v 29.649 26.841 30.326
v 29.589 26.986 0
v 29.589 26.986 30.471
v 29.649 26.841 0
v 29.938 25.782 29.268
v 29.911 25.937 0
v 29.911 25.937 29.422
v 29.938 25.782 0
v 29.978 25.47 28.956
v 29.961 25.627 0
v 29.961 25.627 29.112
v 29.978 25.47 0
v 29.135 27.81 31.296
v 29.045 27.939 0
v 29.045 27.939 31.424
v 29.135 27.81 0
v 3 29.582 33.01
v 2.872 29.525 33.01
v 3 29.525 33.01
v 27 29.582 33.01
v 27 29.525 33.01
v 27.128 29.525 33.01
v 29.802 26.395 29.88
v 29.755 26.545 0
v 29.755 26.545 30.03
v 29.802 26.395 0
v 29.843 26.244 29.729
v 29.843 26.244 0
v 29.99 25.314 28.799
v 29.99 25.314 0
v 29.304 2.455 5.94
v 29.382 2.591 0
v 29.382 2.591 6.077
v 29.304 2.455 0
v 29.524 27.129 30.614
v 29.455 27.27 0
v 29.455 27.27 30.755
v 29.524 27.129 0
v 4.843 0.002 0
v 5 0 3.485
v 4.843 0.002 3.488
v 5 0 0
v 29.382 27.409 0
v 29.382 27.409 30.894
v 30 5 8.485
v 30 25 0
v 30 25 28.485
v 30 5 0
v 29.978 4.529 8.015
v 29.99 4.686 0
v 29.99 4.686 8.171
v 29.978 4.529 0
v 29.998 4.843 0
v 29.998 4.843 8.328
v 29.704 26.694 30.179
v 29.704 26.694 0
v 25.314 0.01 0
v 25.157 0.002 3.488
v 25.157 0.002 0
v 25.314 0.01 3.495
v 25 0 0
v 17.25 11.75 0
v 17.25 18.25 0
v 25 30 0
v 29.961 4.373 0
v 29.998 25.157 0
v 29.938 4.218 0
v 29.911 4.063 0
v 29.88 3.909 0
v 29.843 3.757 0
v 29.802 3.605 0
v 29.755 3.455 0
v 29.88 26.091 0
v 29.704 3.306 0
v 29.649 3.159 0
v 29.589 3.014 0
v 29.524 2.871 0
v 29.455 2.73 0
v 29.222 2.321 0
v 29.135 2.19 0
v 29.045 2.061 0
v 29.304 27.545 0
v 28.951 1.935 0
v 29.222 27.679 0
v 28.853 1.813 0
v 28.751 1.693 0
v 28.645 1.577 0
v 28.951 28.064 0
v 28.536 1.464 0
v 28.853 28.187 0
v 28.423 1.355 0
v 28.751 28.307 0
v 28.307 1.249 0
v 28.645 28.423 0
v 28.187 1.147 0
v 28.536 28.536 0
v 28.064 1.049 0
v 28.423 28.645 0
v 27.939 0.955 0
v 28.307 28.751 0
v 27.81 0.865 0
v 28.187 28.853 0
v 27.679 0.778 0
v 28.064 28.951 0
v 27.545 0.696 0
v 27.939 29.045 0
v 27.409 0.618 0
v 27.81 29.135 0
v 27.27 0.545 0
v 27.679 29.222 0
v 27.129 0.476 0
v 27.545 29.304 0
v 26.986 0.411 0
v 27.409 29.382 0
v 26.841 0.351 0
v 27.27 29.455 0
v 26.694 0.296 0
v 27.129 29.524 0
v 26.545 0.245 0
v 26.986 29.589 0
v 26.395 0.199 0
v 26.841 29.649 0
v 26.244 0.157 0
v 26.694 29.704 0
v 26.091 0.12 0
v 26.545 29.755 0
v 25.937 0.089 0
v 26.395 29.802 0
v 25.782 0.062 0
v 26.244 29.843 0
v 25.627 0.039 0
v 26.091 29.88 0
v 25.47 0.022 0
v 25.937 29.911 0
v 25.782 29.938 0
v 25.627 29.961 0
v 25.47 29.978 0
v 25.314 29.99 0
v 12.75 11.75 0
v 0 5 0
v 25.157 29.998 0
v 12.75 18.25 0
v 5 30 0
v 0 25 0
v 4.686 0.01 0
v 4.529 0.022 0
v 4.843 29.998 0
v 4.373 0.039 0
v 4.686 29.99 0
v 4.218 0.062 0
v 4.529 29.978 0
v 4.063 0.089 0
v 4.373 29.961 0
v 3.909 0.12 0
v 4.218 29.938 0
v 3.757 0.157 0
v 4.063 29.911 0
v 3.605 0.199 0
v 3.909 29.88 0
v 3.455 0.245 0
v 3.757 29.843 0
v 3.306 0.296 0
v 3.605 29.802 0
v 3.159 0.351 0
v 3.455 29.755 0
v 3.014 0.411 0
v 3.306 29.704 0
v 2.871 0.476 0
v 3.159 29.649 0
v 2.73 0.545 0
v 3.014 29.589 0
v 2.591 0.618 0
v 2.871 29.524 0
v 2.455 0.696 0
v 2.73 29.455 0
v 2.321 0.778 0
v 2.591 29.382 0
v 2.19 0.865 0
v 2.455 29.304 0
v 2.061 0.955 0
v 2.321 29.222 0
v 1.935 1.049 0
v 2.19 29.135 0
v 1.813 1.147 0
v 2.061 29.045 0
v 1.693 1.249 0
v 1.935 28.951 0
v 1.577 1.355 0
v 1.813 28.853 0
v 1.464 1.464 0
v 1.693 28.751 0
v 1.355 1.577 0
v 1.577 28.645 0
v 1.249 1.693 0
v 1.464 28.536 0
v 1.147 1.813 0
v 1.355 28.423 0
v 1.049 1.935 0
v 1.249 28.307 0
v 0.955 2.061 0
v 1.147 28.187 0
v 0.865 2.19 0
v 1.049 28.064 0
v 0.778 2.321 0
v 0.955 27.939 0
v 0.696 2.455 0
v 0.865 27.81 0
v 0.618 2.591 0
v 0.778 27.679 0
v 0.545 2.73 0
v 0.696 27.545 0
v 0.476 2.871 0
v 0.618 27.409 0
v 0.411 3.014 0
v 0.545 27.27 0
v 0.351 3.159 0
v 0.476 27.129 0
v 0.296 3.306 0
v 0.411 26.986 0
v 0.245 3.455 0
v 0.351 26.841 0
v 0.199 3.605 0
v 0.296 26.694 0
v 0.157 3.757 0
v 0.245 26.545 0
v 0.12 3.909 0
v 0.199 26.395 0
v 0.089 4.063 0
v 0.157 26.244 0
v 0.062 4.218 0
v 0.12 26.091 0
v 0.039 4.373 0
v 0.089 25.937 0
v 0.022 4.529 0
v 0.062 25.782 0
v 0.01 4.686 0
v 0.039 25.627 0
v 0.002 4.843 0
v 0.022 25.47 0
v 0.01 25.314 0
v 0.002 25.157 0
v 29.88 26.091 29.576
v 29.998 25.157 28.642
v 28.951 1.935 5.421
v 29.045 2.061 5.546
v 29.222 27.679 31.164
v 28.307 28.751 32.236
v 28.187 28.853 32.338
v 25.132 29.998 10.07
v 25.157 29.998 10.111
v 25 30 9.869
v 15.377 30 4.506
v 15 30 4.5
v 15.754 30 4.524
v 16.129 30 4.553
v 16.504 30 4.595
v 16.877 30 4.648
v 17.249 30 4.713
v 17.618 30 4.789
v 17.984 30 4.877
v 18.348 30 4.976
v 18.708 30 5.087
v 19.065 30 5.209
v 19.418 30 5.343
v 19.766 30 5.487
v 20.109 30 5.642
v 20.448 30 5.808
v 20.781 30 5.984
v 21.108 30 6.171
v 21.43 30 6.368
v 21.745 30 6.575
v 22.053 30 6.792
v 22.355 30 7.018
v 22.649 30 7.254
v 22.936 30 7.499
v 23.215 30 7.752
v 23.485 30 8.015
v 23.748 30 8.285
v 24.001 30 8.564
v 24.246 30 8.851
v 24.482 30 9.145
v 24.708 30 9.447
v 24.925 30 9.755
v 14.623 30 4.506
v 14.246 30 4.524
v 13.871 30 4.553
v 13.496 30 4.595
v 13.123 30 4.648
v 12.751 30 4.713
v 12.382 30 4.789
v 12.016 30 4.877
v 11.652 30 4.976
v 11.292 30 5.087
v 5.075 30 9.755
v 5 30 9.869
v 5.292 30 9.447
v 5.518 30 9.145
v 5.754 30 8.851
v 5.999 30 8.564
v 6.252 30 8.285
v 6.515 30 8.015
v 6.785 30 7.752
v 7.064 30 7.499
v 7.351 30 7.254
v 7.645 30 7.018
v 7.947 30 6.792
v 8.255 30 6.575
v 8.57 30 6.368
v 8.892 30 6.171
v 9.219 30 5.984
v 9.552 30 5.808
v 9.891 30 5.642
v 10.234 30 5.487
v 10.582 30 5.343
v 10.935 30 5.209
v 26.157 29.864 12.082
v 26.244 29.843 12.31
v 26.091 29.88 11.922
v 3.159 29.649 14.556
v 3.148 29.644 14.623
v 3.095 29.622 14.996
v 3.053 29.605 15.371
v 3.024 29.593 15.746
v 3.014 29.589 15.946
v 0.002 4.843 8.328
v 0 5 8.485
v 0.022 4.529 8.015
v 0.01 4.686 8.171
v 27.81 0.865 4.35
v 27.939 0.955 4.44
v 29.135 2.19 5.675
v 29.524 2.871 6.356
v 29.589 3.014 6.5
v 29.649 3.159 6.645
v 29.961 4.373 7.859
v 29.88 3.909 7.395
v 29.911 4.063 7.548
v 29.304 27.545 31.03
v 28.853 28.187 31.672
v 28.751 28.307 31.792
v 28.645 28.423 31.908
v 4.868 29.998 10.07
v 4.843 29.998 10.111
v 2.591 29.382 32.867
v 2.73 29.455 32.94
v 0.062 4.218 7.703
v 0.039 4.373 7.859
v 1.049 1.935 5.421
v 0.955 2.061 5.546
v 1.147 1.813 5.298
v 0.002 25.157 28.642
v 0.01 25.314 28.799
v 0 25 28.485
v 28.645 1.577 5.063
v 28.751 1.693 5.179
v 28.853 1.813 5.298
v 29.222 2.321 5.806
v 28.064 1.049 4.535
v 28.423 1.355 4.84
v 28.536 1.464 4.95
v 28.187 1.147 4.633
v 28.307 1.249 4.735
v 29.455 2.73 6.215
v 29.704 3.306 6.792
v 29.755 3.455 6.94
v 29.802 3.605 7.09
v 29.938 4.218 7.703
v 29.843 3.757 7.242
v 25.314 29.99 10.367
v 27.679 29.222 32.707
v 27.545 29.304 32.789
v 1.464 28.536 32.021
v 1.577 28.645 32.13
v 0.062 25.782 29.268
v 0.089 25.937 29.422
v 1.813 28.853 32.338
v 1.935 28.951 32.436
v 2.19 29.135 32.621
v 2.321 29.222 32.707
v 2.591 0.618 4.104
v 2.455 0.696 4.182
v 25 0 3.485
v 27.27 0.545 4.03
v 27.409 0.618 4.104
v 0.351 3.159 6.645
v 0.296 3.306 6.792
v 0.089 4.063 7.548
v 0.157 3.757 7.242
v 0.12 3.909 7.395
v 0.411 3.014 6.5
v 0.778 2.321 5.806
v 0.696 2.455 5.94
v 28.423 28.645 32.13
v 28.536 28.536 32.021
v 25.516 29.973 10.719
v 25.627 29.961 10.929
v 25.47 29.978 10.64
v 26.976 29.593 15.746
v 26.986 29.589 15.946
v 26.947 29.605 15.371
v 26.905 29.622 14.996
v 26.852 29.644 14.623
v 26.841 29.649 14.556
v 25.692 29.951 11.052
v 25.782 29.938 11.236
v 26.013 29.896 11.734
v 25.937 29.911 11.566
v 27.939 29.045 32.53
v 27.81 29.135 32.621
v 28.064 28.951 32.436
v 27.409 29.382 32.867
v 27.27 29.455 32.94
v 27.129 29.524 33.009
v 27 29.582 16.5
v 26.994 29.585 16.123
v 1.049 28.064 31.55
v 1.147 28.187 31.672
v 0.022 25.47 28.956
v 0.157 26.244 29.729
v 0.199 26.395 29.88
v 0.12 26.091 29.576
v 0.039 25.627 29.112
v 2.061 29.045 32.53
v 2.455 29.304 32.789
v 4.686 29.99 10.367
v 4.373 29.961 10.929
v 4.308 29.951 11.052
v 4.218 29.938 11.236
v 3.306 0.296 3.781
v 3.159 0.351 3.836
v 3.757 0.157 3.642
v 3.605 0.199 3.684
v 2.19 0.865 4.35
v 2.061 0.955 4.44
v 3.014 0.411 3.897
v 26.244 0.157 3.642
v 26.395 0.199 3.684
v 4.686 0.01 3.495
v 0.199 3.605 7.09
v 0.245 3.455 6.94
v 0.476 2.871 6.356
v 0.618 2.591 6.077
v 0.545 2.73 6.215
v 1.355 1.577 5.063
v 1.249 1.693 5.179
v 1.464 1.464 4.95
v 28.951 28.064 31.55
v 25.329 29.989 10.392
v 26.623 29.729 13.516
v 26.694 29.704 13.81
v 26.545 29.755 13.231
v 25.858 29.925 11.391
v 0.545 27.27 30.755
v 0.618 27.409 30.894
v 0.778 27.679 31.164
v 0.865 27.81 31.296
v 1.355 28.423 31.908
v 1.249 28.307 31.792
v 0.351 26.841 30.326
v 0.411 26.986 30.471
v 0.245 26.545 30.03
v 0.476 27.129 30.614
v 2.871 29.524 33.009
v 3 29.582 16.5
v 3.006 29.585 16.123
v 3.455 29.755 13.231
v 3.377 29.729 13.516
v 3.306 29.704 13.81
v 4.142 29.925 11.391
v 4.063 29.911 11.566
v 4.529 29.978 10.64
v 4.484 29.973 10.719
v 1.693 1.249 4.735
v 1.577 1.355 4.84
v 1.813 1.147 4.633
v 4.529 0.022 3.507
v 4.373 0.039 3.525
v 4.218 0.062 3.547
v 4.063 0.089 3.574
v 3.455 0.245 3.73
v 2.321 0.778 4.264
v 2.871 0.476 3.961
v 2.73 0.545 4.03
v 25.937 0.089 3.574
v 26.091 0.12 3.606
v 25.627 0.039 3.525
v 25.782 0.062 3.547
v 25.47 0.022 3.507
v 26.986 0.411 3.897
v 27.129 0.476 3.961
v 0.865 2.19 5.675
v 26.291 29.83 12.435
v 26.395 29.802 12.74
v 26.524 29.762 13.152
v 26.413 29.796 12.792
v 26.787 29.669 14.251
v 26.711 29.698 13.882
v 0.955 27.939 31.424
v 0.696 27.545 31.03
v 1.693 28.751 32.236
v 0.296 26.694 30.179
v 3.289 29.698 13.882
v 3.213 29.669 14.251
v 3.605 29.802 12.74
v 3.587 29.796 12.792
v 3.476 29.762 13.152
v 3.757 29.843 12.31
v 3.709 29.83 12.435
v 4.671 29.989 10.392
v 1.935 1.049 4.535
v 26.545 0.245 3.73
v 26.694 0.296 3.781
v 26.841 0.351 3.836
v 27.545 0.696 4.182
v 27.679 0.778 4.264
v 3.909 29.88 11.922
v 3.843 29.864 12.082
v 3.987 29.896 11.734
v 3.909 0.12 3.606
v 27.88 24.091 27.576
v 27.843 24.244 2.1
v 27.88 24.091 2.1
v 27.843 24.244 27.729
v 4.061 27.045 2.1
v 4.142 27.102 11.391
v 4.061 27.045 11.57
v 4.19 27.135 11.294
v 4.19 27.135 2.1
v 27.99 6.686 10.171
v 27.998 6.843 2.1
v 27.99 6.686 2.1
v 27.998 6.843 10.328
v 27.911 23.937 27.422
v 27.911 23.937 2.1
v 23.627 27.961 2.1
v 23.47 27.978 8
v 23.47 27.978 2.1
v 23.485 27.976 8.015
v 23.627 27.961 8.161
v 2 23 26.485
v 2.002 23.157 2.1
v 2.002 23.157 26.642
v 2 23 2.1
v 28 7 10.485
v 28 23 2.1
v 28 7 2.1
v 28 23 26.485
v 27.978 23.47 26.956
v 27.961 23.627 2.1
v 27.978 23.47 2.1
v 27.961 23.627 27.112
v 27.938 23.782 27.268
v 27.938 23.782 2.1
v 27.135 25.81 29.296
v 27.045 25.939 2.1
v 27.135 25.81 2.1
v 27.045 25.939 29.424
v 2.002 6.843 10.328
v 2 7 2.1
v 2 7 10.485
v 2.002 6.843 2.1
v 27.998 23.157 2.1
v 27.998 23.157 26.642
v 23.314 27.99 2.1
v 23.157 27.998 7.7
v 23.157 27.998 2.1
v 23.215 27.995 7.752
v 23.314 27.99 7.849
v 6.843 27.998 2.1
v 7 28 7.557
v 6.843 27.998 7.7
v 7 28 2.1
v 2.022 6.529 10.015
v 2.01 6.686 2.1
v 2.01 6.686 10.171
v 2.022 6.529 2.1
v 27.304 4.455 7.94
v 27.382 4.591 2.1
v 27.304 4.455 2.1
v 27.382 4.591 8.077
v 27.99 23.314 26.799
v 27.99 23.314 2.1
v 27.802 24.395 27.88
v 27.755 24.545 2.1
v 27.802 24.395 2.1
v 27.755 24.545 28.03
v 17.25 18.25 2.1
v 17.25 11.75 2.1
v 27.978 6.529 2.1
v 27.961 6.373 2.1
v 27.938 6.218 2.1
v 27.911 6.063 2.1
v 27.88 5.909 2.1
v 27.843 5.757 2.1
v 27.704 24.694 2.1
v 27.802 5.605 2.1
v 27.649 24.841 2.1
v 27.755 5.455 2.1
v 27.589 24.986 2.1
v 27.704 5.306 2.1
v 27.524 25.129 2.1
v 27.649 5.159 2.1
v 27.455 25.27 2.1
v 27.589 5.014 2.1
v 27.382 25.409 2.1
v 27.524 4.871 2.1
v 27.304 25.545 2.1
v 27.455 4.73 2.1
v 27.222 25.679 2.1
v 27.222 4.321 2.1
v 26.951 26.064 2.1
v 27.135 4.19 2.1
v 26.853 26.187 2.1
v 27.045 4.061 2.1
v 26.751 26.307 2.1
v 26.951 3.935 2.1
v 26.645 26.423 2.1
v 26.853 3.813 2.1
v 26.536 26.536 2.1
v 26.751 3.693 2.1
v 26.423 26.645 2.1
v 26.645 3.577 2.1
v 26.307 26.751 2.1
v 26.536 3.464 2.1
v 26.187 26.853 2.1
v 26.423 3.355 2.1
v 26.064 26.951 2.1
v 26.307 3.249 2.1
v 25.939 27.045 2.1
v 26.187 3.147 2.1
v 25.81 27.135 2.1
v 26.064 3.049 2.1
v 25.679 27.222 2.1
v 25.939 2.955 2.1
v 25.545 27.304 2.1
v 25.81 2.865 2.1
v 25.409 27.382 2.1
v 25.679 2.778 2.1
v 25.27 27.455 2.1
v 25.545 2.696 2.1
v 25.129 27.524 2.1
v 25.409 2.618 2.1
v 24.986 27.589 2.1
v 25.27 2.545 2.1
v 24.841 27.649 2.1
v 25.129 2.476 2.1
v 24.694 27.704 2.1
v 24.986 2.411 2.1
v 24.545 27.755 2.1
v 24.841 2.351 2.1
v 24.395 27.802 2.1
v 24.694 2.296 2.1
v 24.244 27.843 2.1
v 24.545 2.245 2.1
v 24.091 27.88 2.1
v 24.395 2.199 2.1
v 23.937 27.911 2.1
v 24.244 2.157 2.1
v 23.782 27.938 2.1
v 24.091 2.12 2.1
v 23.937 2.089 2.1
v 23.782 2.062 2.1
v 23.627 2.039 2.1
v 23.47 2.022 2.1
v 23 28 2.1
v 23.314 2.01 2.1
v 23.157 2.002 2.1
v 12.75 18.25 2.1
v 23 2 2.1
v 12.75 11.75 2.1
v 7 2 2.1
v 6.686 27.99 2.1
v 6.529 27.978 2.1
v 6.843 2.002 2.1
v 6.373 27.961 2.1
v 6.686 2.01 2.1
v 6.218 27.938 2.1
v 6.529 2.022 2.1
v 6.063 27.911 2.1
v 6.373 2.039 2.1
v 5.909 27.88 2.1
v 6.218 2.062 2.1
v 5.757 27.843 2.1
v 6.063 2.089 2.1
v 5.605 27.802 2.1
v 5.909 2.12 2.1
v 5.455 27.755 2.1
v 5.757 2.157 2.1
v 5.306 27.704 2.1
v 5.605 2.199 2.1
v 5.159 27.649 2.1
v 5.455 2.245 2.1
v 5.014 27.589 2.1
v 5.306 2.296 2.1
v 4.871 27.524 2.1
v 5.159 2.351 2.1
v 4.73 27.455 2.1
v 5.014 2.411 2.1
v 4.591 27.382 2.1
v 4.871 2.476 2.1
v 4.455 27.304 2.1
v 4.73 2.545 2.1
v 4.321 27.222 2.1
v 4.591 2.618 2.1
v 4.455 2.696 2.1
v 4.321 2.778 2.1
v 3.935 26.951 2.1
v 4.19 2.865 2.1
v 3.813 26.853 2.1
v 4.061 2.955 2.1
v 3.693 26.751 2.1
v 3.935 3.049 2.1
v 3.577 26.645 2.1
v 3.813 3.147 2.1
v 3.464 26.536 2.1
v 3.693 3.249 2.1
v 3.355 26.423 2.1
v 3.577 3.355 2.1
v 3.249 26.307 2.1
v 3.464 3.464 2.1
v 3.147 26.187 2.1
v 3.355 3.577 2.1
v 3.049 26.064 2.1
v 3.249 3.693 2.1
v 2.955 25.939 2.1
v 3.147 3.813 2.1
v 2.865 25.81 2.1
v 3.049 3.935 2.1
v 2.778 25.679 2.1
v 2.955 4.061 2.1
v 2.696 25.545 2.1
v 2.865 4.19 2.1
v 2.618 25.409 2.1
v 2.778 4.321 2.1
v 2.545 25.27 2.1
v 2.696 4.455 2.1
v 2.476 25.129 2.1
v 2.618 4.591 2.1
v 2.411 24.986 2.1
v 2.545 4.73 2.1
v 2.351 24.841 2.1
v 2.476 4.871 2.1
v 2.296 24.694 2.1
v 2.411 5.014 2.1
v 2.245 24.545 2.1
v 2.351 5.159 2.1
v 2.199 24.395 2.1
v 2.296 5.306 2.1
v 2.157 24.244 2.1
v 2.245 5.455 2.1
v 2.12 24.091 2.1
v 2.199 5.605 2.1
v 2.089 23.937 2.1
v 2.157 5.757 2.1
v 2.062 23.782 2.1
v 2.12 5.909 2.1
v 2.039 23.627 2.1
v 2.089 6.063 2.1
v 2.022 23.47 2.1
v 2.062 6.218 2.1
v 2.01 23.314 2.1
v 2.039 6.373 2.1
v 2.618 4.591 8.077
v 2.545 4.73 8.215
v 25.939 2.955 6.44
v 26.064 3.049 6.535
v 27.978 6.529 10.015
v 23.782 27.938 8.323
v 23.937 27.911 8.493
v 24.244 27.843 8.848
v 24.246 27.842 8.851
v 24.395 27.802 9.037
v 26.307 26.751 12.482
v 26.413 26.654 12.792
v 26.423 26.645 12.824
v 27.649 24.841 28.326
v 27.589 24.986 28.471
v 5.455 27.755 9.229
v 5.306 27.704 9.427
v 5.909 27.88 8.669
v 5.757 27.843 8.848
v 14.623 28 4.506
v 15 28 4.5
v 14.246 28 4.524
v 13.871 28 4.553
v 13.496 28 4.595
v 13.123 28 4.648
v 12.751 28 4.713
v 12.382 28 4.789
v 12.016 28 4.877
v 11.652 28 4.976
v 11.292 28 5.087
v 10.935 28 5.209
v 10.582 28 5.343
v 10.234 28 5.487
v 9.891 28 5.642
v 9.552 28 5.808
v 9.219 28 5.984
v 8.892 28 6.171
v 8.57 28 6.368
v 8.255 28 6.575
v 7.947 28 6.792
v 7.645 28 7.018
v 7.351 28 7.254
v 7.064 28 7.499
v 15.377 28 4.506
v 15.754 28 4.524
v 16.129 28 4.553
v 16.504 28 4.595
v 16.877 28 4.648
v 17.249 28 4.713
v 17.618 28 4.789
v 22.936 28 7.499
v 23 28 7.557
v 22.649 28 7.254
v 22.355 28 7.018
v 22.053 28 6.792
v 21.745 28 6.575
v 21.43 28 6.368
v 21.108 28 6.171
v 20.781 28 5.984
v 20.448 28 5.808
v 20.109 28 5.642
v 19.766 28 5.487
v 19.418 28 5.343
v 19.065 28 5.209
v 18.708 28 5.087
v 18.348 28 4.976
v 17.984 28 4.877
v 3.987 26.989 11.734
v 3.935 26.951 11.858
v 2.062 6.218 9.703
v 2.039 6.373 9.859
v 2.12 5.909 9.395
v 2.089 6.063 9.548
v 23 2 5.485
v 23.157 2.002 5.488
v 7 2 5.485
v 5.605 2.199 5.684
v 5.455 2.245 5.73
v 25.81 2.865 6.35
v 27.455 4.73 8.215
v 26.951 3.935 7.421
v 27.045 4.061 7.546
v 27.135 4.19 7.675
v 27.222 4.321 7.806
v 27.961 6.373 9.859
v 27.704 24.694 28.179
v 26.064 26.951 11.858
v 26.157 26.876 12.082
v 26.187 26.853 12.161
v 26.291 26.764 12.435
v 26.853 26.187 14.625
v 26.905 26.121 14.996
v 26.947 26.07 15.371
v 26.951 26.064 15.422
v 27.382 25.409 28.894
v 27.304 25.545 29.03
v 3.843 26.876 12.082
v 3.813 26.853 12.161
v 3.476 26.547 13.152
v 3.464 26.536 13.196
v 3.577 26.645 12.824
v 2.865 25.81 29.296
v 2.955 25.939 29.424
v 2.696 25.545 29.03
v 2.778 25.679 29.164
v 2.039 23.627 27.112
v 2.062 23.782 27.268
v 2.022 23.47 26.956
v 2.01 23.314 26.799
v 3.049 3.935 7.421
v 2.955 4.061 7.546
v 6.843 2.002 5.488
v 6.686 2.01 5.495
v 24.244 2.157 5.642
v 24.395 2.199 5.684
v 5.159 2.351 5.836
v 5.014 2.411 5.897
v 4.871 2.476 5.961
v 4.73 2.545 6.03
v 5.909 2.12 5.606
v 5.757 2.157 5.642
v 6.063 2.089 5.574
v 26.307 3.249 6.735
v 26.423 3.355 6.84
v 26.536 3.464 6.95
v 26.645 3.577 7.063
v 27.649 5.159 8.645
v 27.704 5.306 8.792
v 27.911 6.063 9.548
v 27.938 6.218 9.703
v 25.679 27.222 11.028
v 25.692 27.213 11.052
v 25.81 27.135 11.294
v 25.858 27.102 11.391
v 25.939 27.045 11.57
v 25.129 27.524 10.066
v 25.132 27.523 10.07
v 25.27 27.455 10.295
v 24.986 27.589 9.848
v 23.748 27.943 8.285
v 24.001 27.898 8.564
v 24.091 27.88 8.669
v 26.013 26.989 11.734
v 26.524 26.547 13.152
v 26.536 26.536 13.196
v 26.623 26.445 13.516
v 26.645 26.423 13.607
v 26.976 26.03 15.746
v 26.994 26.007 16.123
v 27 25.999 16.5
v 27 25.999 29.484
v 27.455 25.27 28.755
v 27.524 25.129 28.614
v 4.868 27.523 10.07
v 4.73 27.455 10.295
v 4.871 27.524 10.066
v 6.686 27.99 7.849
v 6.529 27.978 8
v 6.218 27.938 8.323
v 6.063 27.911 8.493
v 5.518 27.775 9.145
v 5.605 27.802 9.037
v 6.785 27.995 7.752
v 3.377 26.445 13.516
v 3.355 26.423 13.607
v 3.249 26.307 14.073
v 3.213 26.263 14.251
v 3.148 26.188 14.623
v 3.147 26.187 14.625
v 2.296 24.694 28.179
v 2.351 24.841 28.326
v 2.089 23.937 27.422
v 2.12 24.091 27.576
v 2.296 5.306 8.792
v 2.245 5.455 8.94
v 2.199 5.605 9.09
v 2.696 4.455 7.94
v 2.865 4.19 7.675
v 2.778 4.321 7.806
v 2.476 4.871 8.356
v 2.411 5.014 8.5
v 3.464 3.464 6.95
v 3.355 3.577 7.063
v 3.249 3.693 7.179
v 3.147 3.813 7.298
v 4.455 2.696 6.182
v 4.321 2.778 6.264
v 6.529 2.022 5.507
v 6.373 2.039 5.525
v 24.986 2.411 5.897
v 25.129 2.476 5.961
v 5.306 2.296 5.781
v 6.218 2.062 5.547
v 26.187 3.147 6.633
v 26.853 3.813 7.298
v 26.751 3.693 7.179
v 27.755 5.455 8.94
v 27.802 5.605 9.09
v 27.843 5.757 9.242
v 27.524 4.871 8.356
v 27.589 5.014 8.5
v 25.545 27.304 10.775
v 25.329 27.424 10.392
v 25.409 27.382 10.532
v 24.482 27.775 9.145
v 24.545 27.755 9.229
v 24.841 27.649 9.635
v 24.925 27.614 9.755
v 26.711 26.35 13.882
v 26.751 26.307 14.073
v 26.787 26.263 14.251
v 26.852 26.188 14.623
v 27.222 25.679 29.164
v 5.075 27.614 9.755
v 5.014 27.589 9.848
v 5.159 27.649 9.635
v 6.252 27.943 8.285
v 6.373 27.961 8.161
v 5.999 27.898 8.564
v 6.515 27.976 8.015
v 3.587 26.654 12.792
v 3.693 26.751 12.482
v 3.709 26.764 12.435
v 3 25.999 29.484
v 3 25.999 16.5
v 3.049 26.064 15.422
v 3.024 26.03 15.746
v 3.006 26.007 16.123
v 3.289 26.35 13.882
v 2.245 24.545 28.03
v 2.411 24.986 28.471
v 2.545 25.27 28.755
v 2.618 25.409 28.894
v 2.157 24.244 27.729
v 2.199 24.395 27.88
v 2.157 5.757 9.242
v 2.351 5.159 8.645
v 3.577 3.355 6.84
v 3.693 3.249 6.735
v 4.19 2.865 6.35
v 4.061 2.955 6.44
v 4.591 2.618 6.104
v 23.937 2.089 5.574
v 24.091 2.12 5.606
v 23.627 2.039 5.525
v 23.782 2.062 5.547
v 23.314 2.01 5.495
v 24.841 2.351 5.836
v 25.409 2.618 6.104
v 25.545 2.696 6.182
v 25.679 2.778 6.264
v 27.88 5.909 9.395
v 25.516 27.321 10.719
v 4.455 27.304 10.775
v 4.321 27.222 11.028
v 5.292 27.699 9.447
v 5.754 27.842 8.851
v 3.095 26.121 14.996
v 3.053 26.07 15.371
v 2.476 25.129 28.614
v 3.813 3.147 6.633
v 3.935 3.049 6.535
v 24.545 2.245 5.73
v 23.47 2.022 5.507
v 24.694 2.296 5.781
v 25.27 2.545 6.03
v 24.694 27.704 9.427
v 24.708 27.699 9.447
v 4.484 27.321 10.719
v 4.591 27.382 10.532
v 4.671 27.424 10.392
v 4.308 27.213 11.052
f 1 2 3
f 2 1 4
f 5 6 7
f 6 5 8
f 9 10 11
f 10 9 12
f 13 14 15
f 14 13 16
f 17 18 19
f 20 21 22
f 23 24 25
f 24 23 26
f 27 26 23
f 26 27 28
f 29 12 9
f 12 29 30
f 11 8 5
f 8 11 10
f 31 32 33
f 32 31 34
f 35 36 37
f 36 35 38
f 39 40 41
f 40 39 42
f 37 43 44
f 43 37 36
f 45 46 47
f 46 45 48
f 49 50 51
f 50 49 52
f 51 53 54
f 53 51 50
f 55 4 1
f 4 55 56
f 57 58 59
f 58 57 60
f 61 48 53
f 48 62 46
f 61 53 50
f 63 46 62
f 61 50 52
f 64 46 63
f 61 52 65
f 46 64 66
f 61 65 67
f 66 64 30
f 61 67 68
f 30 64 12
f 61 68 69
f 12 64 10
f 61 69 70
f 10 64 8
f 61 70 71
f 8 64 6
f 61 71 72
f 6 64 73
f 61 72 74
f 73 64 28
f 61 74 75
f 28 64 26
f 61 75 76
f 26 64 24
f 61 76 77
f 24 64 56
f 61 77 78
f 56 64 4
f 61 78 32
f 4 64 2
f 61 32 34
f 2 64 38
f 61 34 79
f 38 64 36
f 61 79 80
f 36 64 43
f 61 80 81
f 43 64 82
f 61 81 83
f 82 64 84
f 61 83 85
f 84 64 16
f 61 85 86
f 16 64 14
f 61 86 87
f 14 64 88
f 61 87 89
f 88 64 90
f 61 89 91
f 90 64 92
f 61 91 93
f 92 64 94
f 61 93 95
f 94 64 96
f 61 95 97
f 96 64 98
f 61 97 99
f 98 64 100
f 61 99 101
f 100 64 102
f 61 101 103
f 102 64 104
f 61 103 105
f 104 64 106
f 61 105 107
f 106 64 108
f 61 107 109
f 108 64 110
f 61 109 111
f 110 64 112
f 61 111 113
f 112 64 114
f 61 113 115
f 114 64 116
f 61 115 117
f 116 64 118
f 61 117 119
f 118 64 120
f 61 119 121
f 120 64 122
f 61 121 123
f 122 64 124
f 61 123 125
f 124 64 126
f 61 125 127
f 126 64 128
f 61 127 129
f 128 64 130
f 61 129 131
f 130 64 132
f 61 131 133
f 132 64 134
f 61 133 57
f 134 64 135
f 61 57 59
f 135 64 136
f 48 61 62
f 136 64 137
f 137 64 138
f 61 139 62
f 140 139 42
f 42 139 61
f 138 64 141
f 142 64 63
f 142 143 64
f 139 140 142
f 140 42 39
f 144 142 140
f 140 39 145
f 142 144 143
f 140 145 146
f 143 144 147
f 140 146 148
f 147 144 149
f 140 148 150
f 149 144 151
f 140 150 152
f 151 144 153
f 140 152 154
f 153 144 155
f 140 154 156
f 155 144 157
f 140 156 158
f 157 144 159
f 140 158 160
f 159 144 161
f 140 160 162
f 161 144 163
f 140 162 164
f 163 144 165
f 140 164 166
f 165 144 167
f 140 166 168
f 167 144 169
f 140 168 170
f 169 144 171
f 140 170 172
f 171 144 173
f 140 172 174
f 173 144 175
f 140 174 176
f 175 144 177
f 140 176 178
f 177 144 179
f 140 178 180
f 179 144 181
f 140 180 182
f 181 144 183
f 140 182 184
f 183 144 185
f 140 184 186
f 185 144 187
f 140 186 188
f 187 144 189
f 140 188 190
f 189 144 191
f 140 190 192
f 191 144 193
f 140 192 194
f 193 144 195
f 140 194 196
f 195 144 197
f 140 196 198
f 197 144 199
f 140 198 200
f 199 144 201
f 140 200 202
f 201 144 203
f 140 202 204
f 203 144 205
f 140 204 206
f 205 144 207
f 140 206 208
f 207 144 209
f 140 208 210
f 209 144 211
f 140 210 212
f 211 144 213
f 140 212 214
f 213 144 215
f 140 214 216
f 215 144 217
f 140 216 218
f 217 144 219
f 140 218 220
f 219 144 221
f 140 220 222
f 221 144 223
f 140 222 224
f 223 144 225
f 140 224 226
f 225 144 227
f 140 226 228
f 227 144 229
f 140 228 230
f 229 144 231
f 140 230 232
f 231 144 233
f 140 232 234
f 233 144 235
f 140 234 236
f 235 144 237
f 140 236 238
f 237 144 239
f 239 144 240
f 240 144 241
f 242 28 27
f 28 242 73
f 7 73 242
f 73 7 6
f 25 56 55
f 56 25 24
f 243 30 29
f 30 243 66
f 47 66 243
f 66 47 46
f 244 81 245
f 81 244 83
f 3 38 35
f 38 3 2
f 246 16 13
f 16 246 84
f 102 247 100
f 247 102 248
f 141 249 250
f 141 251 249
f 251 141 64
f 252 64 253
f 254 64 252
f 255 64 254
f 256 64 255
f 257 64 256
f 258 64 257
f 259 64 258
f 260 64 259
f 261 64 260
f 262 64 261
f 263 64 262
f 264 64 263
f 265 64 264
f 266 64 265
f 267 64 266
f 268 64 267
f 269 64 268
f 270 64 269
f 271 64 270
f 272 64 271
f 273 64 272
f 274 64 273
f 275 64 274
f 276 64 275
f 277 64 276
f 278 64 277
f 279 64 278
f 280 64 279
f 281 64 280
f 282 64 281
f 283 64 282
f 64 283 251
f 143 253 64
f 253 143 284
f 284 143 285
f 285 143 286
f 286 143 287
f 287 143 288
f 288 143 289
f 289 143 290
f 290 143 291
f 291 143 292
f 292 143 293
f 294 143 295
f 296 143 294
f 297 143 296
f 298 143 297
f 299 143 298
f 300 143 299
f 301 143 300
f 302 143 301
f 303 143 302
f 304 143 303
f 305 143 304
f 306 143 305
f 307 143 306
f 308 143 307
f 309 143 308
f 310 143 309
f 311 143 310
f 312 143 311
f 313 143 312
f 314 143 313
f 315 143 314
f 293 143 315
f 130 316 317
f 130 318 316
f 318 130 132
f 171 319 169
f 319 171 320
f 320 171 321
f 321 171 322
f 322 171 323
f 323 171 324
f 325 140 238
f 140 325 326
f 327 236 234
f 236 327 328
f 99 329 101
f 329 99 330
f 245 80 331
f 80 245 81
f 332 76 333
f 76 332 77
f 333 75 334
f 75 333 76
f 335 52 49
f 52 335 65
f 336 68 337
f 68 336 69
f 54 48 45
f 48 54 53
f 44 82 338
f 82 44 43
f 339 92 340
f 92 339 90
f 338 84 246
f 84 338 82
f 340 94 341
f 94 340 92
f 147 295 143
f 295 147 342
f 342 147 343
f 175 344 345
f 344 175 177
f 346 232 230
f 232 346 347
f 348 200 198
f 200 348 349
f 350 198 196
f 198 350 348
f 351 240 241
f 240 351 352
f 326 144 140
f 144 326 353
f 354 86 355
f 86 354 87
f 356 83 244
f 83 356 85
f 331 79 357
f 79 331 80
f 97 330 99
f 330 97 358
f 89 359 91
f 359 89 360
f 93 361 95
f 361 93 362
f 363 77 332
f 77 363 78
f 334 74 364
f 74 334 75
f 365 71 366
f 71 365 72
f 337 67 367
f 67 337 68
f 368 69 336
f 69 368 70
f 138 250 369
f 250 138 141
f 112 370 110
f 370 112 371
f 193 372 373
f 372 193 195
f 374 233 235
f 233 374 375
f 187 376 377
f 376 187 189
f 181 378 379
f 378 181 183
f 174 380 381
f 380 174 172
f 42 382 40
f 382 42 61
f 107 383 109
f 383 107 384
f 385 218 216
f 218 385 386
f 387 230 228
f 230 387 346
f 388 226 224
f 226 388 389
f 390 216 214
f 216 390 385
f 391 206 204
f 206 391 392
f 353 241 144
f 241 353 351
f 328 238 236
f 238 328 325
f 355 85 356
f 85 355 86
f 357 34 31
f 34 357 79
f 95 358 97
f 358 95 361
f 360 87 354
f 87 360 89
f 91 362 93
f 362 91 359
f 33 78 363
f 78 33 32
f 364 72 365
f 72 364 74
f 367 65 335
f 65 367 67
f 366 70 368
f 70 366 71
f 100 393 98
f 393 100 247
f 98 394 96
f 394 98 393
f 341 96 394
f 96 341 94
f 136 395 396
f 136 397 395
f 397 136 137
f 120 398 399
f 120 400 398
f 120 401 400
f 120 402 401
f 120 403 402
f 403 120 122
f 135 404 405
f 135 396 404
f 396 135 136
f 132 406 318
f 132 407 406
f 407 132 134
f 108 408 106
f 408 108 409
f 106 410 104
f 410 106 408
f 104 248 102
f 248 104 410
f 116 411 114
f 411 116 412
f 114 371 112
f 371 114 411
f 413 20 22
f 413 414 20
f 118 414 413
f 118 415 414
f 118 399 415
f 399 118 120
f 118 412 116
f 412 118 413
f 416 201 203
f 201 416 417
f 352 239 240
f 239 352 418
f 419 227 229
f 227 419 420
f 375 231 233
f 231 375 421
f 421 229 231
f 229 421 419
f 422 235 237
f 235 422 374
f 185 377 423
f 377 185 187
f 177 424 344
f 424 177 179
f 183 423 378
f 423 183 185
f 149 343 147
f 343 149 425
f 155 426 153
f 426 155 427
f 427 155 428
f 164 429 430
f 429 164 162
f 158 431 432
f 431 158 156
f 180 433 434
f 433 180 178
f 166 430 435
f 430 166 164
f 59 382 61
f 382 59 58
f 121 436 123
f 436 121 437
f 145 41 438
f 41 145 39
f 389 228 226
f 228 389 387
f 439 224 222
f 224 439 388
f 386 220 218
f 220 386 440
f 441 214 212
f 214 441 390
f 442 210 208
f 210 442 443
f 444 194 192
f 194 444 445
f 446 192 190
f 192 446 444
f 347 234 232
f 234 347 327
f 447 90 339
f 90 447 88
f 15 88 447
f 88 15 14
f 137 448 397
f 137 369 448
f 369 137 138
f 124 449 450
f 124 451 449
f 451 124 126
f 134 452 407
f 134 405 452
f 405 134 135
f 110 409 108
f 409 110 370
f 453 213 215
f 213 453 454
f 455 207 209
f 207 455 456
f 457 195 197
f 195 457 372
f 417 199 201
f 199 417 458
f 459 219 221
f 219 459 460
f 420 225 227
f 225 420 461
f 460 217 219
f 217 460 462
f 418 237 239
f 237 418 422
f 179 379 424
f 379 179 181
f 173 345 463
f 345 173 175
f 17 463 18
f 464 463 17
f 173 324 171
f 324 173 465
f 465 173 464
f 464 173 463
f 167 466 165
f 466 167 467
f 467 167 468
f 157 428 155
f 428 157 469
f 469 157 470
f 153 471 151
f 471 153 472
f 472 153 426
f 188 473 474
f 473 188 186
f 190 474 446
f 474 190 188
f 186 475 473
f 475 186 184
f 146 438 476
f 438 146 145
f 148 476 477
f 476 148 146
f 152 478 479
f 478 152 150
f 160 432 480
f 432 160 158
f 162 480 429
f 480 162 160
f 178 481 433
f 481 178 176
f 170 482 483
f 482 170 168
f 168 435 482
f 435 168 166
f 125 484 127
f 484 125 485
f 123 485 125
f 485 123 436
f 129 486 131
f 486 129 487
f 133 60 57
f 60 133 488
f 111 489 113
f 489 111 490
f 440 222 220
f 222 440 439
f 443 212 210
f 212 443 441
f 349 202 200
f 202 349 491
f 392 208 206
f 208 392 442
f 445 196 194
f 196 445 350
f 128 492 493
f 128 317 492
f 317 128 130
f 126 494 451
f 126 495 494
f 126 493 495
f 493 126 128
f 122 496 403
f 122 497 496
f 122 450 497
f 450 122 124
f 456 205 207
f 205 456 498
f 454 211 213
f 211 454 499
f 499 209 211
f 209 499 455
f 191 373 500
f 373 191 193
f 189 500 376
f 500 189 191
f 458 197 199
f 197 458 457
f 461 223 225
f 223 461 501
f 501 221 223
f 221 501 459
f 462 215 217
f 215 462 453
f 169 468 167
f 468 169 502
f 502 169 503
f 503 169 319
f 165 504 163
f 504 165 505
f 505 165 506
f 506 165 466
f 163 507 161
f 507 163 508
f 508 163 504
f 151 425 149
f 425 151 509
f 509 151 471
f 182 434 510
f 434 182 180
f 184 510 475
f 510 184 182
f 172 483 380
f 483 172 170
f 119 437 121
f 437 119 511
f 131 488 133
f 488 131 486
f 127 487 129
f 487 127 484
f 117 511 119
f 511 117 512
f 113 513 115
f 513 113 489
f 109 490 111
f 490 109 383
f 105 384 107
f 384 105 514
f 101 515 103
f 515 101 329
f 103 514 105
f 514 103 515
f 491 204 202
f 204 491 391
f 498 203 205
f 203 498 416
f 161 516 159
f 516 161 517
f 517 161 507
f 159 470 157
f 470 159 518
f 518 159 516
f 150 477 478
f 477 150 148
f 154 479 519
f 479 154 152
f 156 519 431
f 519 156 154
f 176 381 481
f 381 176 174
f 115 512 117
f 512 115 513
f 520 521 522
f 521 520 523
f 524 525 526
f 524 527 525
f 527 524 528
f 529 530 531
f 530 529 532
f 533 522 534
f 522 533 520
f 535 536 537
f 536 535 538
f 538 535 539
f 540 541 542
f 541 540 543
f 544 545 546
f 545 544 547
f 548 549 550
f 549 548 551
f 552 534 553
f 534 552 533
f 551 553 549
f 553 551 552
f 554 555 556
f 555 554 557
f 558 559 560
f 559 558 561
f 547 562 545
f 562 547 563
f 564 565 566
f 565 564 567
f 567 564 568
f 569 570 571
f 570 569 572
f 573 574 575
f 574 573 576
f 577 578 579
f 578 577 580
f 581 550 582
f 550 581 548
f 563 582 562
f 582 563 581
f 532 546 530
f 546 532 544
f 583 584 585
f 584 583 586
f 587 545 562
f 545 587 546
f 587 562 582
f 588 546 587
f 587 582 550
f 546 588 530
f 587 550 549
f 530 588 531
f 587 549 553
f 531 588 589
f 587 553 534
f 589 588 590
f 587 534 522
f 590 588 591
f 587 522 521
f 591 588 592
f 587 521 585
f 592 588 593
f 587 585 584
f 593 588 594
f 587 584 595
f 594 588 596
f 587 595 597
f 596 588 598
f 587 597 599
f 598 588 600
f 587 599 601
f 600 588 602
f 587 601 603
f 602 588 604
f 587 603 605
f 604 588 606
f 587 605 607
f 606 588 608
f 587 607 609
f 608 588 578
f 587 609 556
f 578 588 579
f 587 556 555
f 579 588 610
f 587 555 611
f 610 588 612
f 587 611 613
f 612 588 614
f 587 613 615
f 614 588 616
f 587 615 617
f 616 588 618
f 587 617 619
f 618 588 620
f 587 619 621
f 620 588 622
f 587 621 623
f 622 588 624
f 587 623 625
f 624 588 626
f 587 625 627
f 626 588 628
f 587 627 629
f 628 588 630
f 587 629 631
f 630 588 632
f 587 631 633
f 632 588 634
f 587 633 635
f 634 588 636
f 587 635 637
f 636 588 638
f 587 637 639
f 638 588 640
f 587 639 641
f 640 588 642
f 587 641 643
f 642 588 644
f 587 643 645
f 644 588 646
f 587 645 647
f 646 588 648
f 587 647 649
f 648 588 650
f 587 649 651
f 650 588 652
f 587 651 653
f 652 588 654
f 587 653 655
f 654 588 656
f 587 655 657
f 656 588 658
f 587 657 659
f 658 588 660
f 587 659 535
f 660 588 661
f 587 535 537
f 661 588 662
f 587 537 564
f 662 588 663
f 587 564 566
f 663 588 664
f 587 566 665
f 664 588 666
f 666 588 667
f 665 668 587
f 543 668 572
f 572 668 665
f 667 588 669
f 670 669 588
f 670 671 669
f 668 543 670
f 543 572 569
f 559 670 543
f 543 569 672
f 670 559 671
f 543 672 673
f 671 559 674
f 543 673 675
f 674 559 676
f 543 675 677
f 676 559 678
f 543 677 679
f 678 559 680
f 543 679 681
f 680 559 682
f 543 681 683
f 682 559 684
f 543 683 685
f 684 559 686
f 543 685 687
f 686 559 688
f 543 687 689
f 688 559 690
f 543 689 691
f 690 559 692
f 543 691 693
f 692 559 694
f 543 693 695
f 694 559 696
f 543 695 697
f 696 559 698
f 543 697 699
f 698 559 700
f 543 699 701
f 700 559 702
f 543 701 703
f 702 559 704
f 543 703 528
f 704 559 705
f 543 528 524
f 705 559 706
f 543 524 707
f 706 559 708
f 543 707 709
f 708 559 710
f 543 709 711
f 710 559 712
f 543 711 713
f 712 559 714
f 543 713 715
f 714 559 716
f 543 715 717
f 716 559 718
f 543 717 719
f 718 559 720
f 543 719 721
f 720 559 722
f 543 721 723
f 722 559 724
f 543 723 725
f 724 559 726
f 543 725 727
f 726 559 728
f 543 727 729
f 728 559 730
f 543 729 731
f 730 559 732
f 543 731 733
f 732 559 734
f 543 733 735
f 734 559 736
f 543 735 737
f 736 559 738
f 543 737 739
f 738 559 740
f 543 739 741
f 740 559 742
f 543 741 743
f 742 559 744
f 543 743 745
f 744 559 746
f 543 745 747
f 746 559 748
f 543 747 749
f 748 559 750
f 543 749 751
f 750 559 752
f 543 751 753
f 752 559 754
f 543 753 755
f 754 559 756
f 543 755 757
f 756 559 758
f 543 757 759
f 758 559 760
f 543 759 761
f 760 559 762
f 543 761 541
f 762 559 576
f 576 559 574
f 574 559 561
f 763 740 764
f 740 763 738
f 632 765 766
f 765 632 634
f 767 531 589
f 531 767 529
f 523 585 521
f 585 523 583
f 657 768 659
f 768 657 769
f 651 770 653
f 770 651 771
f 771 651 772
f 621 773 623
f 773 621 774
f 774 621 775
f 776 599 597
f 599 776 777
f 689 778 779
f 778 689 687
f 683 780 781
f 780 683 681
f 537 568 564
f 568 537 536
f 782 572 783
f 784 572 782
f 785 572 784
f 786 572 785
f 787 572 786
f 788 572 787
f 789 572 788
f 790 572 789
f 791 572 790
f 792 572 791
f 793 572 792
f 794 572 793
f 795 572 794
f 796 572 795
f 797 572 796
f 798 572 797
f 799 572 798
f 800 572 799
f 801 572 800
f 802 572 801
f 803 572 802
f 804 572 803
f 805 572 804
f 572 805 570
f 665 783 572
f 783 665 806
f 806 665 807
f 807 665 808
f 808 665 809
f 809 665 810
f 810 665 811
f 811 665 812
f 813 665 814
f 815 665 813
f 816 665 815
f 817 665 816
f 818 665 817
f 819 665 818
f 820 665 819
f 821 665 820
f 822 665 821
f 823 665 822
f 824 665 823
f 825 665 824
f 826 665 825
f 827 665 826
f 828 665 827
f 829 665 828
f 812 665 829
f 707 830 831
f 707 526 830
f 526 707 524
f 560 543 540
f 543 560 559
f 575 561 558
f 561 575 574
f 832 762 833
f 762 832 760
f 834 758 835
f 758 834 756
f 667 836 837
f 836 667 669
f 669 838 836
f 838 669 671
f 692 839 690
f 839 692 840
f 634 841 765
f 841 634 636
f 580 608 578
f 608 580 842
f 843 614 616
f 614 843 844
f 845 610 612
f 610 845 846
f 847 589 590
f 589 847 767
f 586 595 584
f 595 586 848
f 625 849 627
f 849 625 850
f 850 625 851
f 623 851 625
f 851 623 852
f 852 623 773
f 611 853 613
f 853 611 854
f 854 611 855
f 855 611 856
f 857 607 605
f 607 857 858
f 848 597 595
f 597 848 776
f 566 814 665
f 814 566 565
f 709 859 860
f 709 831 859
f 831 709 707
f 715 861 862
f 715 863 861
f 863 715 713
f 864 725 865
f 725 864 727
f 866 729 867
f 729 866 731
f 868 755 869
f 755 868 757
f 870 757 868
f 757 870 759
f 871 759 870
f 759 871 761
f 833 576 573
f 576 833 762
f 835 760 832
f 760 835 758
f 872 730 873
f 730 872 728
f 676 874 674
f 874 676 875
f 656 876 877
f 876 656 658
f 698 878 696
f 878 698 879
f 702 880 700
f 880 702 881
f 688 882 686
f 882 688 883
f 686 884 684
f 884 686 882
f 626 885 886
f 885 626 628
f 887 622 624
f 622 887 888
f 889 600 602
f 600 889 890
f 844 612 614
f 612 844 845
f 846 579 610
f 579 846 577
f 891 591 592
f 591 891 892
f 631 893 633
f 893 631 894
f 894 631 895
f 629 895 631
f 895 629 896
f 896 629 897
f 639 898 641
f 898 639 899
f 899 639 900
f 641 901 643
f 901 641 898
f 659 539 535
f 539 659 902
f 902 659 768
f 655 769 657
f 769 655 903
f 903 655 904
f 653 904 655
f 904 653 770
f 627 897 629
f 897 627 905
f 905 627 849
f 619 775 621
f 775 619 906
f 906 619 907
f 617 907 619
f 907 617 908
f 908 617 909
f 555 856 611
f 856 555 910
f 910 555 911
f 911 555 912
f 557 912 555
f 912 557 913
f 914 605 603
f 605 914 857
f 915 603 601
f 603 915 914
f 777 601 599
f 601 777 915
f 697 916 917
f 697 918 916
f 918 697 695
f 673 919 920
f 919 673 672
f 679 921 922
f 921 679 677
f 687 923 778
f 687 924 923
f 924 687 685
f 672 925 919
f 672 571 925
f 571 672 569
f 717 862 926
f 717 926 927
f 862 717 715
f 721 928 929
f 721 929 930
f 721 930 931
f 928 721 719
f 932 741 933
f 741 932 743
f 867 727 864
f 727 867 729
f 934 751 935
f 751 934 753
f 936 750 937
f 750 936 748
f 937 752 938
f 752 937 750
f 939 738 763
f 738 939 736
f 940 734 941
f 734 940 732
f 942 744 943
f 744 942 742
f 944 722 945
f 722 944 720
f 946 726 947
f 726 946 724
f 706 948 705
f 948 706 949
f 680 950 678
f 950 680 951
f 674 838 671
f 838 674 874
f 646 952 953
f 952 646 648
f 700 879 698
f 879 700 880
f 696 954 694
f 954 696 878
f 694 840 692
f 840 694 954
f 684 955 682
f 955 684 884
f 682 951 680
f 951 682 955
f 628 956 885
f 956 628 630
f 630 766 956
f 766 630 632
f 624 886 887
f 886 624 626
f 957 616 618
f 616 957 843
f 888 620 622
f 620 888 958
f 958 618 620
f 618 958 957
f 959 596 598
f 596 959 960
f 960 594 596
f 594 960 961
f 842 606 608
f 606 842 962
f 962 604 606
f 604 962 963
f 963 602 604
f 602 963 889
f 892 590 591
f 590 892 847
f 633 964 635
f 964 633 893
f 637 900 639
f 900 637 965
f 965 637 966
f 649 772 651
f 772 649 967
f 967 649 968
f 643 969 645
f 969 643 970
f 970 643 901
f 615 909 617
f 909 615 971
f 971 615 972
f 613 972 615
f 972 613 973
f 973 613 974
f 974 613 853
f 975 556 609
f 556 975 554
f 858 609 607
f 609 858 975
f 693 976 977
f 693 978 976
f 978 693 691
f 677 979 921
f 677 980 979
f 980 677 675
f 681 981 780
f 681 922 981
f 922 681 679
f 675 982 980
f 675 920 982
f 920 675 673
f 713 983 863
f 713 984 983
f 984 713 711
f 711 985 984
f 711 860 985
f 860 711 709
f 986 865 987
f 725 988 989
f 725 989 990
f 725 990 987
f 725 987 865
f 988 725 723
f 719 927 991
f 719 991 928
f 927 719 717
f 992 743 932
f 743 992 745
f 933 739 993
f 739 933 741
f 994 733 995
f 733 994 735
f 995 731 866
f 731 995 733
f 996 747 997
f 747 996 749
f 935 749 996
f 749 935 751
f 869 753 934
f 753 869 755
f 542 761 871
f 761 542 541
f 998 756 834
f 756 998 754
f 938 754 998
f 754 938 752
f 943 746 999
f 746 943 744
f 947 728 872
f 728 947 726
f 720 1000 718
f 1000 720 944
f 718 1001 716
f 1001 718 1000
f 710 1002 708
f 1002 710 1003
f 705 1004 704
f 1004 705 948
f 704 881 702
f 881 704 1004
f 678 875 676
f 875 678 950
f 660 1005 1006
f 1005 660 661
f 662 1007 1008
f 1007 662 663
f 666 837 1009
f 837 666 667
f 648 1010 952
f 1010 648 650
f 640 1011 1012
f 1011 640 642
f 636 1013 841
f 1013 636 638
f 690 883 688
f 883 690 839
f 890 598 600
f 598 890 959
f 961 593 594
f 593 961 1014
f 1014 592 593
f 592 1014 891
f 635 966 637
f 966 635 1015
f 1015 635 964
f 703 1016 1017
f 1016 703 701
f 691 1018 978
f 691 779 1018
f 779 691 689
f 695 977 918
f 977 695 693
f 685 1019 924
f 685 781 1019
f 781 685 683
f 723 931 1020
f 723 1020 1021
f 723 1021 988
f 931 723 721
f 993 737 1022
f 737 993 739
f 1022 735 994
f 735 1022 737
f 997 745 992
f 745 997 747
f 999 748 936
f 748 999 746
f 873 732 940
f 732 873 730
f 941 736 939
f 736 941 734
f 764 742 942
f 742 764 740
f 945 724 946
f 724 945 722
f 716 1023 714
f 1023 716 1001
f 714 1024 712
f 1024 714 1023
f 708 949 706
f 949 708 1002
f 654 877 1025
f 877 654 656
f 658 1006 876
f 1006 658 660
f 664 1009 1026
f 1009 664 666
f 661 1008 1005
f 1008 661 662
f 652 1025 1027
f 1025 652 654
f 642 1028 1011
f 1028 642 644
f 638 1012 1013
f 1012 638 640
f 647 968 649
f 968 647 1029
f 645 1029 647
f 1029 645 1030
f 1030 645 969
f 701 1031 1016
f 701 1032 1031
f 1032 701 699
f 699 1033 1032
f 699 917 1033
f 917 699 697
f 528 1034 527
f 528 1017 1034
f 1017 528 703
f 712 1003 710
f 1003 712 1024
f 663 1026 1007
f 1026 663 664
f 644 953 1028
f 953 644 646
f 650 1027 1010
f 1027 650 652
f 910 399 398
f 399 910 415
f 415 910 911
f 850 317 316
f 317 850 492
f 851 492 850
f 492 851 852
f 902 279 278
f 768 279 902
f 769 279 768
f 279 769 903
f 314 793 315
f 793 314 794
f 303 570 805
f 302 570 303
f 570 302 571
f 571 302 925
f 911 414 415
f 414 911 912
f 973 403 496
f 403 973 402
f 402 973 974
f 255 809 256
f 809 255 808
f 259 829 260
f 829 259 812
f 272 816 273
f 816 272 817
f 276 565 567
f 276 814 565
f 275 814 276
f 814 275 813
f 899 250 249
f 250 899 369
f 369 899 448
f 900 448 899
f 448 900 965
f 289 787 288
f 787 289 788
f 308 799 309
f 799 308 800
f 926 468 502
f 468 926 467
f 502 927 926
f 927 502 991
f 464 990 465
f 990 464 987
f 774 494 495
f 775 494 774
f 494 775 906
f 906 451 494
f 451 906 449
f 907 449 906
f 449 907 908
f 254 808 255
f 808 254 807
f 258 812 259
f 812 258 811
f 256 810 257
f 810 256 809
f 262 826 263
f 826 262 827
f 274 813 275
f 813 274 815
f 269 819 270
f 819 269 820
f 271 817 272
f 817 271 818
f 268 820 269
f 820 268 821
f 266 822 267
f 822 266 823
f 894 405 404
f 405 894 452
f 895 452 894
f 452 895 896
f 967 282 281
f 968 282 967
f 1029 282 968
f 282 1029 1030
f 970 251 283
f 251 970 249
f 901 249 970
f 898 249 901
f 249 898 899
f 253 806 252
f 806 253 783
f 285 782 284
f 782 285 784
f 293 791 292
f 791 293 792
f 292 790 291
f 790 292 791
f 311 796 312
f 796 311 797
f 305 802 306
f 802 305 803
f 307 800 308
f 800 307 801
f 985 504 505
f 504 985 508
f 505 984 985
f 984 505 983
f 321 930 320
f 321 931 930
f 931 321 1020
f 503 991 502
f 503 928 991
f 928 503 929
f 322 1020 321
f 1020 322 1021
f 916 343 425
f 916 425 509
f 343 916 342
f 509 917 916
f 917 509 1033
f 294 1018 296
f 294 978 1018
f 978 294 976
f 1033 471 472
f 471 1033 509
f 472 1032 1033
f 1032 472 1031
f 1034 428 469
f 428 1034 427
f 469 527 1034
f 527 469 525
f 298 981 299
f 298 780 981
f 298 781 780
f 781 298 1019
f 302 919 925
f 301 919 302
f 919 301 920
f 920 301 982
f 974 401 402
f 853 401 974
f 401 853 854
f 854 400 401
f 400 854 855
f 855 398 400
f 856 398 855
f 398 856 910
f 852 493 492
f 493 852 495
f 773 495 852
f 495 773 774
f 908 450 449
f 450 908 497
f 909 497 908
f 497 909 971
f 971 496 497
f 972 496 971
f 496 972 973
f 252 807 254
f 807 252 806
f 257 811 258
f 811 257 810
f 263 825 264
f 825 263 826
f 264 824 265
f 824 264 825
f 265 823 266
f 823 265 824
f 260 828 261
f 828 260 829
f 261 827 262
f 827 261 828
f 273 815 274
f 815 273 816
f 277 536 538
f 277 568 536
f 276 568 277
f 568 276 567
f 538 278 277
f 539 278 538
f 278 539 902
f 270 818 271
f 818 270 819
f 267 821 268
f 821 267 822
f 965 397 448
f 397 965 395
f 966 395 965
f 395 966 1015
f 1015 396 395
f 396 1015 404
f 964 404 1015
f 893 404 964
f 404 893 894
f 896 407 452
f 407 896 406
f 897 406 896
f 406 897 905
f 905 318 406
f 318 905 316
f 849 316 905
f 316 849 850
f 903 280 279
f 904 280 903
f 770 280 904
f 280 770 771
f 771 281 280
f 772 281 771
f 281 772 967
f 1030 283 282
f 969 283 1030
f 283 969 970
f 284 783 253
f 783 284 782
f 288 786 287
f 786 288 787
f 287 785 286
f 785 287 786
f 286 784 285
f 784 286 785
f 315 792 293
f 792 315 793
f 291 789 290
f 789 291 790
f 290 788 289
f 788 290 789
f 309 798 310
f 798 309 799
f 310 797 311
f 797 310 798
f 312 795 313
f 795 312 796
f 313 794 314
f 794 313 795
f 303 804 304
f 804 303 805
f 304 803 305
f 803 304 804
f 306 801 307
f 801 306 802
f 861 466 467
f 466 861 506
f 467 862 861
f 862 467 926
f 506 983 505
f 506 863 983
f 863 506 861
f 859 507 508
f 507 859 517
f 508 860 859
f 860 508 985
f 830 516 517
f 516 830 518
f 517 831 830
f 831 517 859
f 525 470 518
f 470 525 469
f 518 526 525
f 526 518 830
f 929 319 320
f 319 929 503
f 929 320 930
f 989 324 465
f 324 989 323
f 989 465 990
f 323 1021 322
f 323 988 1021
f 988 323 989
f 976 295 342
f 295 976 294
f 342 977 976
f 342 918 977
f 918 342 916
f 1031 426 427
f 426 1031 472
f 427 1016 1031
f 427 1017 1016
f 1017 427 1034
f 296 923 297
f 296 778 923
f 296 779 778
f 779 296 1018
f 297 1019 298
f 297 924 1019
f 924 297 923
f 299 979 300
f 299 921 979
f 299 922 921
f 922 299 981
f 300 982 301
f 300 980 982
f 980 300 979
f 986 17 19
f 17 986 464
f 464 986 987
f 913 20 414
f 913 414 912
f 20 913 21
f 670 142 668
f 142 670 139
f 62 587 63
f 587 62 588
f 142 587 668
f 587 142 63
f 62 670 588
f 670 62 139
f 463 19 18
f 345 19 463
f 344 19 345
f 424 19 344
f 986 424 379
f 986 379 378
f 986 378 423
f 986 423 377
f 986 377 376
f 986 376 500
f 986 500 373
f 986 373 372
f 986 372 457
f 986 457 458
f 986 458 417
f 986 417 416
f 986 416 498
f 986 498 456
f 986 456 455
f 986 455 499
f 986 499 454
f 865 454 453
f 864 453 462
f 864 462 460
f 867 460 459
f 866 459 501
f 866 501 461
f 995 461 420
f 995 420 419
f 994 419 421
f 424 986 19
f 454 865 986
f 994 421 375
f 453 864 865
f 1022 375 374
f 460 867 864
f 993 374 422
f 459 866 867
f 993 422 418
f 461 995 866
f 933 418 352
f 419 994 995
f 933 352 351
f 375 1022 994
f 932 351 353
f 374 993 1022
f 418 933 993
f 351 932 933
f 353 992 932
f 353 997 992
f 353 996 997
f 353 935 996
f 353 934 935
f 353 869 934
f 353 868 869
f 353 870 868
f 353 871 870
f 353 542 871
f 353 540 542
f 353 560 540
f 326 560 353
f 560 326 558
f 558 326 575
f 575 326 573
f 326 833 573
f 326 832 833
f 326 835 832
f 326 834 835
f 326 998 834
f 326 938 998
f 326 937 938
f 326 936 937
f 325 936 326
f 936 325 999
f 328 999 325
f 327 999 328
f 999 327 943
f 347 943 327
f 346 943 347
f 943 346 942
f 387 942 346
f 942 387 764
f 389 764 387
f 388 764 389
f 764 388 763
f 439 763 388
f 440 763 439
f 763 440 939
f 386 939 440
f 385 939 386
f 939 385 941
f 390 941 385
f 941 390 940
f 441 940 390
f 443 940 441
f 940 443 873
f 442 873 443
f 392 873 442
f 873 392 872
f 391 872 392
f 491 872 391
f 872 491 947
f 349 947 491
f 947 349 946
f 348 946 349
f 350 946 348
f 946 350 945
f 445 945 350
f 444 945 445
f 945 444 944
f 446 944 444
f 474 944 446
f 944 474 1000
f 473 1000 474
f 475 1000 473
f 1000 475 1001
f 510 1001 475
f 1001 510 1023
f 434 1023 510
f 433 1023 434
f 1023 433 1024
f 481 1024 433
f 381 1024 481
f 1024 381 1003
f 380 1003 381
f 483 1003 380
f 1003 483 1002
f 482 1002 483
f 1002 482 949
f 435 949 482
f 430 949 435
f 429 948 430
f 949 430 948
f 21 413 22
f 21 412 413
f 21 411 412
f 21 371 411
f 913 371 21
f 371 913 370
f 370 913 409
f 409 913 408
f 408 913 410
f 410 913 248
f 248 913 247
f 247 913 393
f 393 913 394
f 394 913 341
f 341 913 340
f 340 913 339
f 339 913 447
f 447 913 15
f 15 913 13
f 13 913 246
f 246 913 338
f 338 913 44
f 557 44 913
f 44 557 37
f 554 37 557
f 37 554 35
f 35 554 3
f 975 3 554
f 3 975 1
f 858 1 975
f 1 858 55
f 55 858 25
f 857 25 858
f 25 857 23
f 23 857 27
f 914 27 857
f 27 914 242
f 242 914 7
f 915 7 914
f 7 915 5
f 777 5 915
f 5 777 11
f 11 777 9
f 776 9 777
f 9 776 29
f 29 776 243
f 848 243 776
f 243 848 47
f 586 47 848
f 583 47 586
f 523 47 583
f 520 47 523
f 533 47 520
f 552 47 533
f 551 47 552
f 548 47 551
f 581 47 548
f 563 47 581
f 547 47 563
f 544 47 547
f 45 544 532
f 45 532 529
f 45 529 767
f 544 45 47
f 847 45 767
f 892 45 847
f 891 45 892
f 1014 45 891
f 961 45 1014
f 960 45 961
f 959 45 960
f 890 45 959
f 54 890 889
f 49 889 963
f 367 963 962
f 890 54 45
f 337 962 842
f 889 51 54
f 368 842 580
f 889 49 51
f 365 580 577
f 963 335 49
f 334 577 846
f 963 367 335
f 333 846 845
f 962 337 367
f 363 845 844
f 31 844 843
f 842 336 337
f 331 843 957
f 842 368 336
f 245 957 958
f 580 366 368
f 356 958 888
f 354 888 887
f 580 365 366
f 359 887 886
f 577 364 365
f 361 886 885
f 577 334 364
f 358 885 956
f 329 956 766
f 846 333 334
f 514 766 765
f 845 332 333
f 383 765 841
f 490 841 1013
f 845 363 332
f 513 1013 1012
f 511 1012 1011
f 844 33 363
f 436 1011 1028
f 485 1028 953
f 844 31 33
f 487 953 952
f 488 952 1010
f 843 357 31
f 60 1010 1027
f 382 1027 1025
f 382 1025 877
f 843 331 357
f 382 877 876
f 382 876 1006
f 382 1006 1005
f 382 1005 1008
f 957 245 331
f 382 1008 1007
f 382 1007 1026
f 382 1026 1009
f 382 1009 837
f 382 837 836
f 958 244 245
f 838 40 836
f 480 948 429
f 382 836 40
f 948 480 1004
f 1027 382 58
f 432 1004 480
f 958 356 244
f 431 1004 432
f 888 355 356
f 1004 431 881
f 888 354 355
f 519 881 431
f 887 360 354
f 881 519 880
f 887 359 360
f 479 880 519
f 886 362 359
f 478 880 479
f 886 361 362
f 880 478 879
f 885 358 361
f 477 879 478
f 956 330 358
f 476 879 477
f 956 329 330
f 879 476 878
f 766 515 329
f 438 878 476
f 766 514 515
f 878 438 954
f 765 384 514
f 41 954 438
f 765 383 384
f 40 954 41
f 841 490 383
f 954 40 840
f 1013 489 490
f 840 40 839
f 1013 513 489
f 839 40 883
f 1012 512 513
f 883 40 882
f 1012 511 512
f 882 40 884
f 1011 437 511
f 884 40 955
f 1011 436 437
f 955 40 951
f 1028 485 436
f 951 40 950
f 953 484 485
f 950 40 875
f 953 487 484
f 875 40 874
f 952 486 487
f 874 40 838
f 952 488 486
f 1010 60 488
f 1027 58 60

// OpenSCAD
$fn=200;

slop = 0.1;

sensor_width = 4 + 0.5;
sensor_length = 6 + 0.5;
length = 30;
width= 30;
height = 33;
corner = 5;
thick = 2;
motor_width = 20;
motor_length = 15;

translate([corner, corner, 0]){
  difference() {
    roundedBox(length, width, height, corner);
    translate([thick,thick,thick+slop])
      roundedBox(length-thick*2, width-thick*2, height-thick+slop, corner);
    
    // Hole for finger
    translate([width/2-corner, length-corner+slop, height/2])
      rotate([90,0,0])
        cylinder(r=12, h=2*thick+slop*3);
    translate([width/2-corner-12, length-corner+slop, height/2])
      rotate([90,0,0])
        cube(size=[24, 24, 2*thick+slop*3]);

    // Hole for sensor
    translate([width/2-corner-sensor_width/2, length/2-corner-sensor_length/2, 0-slop]){
      cube(size=[sensor_width, sensor_length, thick+slop*3]);
    }
    
    // Cut a slope
    rotate([135,0,0])
      translate([-corner-5, 6, -height*1.5])
        cube(size=[width+10, length, length*2]);
  }
  //rotate([0,0,90])
  //  translate([15-cornerRadius,-width+cornerRadius+thick,0])
  //    cube(size=[thick,width-cornerRadius+thick*2,20]);
}


module roundedBox(length, width, height, radius){
  dRadius = 2*radius;

  //cube bottom right
  //translate([width-dRadius,-radius,0])
  //  cube(size=[radius,radius,height+0.01]);

  //cube top left
  //translate([-radius,length-dRadius,0])
  //  cube(size=[radius,radius,height+0.01]);

  //base rounded shape
  minkowski() {
    cube(size=[width-dRadius,length-dRadius, height]);
    cylinder(r=radius, h=0.01);
  } 
}
